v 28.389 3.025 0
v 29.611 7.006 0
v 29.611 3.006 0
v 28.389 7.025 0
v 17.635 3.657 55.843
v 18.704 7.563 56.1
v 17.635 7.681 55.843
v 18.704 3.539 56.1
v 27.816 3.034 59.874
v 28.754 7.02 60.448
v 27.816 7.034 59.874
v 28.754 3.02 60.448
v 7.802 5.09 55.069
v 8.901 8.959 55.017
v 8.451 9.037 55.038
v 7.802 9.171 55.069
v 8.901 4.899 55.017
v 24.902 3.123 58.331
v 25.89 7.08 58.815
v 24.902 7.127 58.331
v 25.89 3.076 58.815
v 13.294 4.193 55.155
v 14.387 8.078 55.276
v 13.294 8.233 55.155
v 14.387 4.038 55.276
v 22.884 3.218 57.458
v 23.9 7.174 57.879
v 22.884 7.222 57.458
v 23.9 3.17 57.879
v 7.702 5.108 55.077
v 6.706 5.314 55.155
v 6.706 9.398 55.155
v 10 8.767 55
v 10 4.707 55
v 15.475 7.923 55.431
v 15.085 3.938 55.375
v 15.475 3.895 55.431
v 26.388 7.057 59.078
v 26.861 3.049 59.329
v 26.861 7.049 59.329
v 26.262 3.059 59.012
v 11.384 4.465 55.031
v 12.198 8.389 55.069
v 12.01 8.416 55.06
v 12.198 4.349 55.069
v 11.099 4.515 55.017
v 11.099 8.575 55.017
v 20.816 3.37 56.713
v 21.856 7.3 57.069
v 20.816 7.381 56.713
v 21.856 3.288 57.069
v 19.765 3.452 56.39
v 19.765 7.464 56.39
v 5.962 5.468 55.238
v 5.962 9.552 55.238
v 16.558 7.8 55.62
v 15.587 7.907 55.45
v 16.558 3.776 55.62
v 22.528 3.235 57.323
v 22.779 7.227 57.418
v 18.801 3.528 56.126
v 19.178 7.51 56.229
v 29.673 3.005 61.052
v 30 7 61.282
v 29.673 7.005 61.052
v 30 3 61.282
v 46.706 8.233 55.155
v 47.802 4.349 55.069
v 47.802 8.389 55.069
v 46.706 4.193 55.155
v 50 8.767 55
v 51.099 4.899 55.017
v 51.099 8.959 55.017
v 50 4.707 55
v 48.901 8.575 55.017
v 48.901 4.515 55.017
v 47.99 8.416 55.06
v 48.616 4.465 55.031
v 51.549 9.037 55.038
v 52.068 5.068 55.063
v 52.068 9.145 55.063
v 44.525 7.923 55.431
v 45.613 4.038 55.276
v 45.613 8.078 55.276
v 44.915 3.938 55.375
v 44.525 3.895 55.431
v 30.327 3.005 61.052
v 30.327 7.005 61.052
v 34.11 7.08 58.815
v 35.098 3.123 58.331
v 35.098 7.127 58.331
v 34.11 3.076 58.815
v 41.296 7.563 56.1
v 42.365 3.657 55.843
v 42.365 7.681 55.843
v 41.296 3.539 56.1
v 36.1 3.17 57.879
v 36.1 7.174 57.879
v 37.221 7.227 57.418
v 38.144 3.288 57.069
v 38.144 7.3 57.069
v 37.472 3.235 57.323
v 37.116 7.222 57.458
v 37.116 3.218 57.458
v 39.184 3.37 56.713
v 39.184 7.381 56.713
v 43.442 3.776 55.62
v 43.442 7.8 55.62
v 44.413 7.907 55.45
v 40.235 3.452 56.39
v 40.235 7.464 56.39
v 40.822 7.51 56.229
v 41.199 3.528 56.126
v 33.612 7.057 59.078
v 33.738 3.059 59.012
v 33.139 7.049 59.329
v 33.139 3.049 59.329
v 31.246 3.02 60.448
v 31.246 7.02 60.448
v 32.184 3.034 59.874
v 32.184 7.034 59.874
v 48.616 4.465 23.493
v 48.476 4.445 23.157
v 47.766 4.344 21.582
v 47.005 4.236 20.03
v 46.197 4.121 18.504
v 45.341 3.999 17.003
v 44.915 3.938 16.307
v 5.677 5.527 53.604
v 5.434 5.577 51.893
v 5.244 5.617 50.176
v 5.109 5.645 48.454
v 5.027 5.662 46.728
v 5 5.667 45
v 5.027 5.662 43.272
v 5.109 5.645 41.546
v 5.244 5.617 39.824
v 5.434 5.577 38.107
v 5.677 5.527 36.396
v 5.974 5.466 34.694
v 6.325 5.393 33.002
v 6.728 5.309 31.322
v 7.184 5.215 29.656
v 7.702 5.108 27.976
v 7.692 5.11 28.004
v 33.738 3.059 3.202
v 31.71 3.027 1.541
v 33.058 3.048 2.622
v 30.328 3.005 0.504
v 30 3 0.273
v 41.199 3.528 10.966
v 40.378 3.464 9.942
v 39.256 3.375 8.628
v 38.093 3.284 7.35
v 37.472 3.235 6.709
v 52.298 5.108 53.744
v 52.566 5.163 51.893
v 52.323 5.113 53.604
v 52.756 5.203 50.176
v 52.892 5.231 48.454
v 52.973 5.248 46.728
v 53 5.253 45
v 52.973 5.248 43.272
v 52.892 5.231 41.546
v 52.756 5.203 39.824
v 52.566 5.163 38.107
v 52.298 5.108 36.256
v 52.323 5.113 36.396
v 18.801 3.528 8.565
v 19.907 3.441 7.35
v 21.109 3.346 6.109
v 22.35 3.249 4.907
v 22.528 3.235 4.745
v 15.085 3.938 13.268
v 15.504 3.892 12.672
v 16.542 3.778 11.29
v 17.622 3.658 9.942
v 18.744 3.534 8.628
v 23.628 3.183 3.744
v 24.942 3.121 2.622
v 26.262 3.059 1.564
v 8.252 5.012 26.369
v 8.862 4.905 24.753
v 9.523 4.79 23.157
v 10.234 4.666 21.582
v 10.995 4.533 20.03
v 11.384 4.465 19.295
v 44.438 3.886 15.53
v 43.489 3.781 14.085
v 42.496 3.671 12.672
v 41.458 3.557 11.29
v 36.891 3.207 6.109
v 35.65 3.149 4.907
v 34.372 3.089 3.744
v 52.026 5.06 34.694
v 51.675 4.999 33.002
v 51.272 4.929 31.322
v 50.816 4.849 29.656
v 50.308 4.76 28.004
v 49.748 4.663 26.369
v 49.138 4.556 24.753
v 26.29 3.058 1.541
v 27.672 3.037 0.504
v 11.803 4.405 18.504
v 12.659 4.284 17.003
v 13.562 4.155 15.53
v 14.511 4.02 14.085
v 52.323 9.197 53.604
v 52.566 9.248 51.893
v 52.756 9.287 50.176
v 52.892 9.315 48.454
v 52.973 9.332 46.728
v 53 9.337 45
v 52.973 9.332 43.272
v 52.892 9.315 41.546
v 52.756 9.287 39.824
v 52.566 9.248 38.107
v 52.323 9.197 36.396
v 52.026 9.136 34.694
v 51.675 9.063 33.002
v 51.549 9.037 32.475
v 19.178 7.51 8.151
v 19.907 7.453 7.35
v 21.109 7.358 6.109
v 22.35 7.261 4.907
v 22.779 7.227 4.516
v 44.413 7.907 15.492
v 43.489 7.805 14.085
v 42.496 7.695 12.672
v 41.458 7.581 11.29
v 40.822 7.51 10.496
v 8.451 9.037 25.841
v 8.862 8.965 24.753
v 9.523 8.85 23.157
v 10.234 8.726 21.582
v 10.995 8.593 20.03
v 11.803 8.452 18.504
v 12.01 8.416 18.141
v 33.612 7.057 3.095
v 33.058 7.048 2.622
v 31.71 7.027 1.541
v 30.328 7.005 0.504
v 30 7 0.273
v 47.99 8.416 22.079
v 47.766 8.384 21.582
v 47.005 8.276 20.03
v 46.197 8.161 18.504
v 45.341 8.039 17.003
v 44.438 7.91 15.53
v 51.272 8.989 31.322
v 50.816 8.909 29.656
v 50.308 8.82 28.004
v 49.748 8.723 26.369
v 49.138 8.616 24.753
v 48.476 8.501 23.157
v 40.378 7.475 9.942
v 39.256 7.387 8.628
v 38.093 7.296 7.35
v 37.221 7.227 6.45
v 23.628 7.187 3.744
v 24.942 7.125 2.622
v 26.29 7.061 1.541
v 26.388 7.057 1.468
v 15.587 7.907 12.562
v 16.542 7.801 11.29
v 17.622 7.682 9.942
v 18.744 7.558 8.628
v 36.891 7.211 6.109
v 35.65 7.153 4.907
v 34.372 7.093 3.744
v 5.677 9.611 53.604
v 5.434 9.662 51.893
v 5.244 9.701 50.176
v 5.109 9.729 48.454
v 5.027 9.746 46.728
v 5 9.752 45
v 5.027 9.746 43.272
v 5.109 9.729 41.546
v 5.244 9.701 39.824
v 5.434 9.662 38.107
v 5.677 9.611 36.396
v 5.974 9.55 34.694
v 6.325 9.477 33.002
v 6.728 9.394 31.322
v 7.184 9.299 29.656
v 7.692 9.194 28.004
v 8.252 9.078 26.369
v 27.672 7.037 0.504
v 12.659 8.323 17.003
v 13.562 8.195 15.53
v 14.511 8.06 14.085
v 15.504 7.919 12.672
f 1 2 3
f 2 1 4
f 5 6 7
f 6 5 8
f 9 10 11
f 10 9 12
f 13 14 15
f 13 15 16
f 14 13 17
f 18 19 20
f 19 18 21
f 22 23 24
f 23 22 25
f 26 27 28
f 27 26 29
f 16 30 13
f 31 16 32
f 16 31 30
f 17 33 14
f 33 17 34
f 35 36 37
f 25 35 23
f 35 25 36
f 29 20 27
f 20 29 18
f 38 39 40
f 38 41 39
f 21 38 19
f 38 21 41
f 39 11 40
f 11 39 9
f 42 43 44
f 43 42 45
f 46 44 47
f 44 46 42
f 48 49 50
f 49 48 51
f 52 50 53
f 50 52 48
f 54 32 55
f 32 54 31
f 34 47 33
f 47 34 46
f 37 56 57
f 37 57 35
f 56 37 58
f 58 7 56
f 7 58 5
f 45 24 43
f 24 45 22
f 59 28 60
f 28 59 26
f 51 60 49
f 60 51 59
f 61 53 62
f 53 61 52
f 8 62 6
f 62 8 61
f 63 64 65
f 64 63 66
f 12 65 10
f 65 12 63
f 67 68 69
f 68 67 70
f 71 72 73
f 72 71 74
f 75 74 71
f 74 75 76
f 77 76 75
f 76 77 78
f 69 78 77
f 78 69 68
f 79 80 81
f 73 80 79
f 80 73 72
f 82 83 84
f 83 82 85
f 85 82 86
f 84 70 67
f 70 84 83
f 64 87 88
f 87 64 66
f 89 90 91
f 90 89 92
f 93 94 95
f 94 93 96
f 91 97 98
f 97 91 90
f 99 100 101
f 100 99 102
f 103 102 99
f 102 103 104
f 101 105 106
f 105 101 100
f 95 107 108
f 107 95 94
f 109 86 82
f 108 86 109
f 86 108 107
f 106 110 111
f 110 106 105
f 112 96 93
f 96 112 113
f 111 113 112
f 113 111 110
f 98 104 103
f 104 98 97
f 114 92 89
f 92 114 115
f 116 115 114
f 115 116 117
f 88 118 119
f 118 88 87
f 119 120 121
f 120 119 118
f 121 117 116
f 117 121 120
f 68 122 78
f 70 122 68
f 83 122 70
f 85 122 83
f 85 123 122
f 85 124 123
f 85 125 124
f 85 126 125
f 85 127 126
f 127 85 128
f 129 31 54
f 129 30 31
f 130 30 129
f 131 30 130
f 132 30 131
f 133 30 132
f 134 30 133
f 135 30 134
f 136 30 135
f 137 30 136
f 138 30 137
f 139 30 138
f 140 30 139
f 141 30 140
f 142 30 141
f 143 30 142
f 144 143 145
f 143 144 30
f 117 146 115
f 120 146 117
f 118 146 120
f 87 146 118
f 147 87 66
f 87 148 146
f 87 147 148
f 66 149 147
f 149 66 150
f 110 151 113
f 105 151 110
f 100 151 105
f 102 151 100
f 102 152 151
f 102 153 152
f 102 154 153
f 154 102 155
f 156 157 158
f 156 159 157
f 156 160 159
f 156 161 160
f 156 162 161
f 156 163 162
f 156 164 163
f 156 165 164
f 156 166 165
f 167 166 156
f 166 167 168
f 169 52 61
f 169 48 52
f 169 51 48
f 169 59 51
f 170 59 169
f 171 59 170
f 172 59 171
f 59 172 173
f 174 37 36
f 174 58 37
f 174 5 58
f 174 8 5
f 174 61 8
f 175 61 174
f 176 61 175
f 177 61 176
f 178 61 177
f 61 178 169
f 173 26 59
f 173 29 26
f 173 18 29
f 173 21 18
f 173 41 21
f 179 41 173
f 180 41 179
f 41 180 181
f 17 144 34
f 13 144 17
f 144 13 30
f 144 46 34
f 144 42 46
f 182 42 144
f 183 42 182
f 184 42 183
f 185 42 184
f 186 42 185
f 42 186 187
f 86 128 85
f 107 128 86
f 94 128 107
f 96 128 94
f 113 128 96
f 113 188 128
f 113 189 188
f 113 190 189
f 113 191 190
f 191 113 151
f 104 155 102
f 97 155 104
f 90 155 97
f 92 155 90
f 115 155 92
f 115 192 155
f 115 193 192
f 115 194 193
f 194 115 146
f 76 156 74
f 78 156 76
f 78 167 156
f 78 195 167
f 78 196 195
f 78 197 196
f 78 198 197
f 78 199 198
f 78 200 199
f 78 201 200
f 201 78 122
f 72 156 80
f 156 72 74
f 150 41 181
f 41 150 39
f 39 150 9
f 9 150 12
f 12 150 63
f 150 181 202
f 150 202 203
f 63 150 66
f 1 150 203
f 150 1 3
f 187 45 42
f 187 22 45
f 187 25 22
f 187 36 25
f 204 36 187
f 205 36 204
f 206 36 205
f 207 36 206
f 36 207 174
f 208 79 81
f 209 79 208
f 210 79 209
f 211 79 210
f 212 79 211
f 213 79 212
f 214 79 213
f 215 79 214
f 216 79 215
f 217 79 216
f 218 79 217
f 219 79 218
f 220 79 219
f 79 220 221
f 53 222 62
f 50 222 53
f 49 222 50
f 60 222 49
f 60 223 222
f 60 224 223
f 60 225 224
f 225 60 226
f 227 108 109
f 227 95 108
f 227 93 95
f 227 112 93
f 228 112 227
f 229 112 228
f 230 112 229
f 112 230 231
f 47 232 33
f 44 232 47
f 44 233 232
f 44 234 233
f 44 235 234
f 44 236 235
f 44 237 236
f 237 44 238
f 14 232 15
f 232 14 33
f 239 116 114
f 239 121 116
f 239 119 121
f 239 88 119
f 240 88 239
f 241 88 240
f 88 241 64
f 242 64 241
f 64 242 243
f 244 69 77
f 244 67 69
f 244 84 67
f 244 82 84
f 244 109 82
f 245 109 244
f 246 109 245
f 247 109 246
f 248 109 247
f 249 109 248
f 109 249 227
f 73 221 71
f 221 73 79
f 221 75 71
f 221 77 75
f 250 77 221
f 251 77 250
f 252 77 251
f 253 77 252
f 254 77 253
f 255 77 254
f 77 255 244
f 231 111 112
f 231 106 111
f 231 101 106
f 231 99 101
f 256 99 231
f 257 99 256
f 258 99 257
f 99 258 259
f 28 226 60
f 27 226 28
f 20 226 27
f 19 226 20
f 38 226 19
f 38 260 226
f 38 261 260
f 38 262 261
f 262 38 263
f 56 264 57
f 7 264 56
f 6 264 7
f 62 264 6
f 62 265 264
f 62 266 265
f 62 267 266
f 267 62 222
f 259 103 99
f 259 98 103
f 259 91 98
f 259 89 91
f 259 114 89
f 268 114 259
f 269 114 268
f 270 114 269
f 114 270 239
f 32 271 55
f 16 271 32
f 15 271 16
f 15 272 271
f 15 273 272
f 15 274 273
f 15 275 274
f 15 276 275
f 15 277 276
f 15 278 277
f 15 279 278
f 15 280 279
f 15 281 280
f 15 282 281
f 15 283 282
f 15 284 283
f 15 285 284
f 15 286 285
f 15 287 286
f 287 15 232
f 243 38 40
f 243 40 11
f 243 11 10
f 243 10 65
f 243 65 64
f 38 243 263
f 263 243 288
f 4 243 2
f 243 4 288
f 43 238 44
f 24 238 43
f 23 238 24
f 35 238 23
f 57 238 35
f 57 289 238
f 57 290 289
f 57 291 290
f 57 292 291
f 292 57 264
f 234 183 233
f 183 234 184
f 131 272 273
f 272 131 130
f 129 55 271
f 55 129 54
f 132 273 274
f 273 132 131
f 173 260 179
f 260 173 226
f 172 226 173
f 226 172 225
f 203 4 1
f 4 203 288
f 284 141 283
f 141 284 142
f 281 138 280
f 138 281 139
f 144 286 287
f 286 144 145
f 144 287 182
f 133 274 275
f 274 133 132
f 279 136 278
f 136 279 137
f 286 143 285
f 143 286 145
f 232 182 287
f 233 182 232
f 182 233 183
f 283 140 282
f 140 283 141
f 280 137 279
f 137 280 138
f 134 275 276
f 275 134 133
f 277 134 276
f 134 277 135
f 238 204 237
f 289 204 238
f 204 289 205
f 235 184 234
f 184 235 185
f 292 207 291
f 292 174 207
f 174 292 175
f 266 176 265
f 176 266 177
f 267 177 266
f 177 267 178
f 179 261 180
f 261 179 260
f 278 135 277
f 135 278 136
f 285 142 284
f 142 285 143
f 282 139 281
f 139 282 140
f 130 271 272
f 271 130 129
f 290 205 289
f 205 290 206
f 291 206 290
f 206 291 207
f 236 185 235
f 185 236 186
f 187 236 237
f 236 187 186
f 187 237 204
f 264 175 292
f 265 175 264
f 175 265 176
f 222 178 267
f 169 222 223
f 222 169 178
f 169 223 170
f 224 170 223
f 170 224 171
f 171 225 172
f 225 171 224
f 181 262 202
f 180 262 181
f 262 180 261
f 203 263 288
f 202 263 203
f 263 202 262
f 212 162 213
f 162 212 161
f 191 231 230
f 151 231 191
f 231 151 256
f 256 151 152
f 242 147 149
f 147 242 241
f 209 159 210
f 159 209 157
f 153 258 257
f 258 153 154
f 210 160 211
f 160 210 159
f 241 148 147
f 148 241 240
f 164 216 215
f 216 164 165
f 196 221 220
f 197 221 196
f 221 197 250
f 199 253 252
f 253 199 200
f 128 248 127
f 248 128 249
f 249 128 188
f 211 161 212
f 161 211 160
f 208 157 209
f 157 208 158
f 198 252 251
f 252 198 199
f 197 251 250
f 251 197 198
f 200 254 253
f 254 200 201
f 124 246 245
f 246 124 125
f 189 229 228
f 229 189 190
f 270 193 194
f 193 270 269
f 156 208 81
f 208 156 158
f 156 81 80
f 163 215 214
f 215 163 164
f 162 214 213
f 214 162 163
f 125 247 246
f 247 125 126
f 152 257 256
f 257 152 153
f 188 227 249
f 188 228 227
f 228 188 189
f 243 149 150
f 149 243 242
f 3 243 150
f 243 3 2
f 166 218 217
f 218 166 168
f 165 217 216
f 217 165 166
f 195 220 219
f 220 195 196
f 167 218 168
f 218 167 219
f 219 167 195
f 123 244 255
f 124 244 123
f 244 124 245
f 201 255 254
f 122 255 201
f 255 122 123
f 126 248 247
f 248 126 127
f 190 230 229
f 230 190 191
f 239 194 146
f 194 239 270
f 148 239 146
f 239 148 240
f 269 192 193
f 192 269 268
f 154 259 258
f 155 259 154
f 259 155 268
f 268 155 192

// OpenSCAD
// Shield

module shield() {
	intersection() {
	difference() {
	cube([60,10,70]);
	translate([10,15,90])
		rotate([90,0,0])
			cylinder(20,r=35,true,$fn=200);
	translate([50,15,90])
		rotate([90,0,0])
			cylinder(20,r=35,true,$fn=200);		
	}
	translate([60,15,45])
		rotate([90,0,0])
			cylinder(20,r=55,true,$fn=200);
	translate([-2,15,45])
		rotate([90,0,0])
			cylinder(20,r=55,true,$fn=200);
	translate([30,122,0])
		doughnut();
	}
}
module doughnut() {
	difference() {
		cylinder(70,r=119,true,$fn=200);
		translate([0,0,-5])
		cylinder(80,r=115,true,$fn=200);
		
	}
}

color([0.8,0.8,0.8]) shield();
